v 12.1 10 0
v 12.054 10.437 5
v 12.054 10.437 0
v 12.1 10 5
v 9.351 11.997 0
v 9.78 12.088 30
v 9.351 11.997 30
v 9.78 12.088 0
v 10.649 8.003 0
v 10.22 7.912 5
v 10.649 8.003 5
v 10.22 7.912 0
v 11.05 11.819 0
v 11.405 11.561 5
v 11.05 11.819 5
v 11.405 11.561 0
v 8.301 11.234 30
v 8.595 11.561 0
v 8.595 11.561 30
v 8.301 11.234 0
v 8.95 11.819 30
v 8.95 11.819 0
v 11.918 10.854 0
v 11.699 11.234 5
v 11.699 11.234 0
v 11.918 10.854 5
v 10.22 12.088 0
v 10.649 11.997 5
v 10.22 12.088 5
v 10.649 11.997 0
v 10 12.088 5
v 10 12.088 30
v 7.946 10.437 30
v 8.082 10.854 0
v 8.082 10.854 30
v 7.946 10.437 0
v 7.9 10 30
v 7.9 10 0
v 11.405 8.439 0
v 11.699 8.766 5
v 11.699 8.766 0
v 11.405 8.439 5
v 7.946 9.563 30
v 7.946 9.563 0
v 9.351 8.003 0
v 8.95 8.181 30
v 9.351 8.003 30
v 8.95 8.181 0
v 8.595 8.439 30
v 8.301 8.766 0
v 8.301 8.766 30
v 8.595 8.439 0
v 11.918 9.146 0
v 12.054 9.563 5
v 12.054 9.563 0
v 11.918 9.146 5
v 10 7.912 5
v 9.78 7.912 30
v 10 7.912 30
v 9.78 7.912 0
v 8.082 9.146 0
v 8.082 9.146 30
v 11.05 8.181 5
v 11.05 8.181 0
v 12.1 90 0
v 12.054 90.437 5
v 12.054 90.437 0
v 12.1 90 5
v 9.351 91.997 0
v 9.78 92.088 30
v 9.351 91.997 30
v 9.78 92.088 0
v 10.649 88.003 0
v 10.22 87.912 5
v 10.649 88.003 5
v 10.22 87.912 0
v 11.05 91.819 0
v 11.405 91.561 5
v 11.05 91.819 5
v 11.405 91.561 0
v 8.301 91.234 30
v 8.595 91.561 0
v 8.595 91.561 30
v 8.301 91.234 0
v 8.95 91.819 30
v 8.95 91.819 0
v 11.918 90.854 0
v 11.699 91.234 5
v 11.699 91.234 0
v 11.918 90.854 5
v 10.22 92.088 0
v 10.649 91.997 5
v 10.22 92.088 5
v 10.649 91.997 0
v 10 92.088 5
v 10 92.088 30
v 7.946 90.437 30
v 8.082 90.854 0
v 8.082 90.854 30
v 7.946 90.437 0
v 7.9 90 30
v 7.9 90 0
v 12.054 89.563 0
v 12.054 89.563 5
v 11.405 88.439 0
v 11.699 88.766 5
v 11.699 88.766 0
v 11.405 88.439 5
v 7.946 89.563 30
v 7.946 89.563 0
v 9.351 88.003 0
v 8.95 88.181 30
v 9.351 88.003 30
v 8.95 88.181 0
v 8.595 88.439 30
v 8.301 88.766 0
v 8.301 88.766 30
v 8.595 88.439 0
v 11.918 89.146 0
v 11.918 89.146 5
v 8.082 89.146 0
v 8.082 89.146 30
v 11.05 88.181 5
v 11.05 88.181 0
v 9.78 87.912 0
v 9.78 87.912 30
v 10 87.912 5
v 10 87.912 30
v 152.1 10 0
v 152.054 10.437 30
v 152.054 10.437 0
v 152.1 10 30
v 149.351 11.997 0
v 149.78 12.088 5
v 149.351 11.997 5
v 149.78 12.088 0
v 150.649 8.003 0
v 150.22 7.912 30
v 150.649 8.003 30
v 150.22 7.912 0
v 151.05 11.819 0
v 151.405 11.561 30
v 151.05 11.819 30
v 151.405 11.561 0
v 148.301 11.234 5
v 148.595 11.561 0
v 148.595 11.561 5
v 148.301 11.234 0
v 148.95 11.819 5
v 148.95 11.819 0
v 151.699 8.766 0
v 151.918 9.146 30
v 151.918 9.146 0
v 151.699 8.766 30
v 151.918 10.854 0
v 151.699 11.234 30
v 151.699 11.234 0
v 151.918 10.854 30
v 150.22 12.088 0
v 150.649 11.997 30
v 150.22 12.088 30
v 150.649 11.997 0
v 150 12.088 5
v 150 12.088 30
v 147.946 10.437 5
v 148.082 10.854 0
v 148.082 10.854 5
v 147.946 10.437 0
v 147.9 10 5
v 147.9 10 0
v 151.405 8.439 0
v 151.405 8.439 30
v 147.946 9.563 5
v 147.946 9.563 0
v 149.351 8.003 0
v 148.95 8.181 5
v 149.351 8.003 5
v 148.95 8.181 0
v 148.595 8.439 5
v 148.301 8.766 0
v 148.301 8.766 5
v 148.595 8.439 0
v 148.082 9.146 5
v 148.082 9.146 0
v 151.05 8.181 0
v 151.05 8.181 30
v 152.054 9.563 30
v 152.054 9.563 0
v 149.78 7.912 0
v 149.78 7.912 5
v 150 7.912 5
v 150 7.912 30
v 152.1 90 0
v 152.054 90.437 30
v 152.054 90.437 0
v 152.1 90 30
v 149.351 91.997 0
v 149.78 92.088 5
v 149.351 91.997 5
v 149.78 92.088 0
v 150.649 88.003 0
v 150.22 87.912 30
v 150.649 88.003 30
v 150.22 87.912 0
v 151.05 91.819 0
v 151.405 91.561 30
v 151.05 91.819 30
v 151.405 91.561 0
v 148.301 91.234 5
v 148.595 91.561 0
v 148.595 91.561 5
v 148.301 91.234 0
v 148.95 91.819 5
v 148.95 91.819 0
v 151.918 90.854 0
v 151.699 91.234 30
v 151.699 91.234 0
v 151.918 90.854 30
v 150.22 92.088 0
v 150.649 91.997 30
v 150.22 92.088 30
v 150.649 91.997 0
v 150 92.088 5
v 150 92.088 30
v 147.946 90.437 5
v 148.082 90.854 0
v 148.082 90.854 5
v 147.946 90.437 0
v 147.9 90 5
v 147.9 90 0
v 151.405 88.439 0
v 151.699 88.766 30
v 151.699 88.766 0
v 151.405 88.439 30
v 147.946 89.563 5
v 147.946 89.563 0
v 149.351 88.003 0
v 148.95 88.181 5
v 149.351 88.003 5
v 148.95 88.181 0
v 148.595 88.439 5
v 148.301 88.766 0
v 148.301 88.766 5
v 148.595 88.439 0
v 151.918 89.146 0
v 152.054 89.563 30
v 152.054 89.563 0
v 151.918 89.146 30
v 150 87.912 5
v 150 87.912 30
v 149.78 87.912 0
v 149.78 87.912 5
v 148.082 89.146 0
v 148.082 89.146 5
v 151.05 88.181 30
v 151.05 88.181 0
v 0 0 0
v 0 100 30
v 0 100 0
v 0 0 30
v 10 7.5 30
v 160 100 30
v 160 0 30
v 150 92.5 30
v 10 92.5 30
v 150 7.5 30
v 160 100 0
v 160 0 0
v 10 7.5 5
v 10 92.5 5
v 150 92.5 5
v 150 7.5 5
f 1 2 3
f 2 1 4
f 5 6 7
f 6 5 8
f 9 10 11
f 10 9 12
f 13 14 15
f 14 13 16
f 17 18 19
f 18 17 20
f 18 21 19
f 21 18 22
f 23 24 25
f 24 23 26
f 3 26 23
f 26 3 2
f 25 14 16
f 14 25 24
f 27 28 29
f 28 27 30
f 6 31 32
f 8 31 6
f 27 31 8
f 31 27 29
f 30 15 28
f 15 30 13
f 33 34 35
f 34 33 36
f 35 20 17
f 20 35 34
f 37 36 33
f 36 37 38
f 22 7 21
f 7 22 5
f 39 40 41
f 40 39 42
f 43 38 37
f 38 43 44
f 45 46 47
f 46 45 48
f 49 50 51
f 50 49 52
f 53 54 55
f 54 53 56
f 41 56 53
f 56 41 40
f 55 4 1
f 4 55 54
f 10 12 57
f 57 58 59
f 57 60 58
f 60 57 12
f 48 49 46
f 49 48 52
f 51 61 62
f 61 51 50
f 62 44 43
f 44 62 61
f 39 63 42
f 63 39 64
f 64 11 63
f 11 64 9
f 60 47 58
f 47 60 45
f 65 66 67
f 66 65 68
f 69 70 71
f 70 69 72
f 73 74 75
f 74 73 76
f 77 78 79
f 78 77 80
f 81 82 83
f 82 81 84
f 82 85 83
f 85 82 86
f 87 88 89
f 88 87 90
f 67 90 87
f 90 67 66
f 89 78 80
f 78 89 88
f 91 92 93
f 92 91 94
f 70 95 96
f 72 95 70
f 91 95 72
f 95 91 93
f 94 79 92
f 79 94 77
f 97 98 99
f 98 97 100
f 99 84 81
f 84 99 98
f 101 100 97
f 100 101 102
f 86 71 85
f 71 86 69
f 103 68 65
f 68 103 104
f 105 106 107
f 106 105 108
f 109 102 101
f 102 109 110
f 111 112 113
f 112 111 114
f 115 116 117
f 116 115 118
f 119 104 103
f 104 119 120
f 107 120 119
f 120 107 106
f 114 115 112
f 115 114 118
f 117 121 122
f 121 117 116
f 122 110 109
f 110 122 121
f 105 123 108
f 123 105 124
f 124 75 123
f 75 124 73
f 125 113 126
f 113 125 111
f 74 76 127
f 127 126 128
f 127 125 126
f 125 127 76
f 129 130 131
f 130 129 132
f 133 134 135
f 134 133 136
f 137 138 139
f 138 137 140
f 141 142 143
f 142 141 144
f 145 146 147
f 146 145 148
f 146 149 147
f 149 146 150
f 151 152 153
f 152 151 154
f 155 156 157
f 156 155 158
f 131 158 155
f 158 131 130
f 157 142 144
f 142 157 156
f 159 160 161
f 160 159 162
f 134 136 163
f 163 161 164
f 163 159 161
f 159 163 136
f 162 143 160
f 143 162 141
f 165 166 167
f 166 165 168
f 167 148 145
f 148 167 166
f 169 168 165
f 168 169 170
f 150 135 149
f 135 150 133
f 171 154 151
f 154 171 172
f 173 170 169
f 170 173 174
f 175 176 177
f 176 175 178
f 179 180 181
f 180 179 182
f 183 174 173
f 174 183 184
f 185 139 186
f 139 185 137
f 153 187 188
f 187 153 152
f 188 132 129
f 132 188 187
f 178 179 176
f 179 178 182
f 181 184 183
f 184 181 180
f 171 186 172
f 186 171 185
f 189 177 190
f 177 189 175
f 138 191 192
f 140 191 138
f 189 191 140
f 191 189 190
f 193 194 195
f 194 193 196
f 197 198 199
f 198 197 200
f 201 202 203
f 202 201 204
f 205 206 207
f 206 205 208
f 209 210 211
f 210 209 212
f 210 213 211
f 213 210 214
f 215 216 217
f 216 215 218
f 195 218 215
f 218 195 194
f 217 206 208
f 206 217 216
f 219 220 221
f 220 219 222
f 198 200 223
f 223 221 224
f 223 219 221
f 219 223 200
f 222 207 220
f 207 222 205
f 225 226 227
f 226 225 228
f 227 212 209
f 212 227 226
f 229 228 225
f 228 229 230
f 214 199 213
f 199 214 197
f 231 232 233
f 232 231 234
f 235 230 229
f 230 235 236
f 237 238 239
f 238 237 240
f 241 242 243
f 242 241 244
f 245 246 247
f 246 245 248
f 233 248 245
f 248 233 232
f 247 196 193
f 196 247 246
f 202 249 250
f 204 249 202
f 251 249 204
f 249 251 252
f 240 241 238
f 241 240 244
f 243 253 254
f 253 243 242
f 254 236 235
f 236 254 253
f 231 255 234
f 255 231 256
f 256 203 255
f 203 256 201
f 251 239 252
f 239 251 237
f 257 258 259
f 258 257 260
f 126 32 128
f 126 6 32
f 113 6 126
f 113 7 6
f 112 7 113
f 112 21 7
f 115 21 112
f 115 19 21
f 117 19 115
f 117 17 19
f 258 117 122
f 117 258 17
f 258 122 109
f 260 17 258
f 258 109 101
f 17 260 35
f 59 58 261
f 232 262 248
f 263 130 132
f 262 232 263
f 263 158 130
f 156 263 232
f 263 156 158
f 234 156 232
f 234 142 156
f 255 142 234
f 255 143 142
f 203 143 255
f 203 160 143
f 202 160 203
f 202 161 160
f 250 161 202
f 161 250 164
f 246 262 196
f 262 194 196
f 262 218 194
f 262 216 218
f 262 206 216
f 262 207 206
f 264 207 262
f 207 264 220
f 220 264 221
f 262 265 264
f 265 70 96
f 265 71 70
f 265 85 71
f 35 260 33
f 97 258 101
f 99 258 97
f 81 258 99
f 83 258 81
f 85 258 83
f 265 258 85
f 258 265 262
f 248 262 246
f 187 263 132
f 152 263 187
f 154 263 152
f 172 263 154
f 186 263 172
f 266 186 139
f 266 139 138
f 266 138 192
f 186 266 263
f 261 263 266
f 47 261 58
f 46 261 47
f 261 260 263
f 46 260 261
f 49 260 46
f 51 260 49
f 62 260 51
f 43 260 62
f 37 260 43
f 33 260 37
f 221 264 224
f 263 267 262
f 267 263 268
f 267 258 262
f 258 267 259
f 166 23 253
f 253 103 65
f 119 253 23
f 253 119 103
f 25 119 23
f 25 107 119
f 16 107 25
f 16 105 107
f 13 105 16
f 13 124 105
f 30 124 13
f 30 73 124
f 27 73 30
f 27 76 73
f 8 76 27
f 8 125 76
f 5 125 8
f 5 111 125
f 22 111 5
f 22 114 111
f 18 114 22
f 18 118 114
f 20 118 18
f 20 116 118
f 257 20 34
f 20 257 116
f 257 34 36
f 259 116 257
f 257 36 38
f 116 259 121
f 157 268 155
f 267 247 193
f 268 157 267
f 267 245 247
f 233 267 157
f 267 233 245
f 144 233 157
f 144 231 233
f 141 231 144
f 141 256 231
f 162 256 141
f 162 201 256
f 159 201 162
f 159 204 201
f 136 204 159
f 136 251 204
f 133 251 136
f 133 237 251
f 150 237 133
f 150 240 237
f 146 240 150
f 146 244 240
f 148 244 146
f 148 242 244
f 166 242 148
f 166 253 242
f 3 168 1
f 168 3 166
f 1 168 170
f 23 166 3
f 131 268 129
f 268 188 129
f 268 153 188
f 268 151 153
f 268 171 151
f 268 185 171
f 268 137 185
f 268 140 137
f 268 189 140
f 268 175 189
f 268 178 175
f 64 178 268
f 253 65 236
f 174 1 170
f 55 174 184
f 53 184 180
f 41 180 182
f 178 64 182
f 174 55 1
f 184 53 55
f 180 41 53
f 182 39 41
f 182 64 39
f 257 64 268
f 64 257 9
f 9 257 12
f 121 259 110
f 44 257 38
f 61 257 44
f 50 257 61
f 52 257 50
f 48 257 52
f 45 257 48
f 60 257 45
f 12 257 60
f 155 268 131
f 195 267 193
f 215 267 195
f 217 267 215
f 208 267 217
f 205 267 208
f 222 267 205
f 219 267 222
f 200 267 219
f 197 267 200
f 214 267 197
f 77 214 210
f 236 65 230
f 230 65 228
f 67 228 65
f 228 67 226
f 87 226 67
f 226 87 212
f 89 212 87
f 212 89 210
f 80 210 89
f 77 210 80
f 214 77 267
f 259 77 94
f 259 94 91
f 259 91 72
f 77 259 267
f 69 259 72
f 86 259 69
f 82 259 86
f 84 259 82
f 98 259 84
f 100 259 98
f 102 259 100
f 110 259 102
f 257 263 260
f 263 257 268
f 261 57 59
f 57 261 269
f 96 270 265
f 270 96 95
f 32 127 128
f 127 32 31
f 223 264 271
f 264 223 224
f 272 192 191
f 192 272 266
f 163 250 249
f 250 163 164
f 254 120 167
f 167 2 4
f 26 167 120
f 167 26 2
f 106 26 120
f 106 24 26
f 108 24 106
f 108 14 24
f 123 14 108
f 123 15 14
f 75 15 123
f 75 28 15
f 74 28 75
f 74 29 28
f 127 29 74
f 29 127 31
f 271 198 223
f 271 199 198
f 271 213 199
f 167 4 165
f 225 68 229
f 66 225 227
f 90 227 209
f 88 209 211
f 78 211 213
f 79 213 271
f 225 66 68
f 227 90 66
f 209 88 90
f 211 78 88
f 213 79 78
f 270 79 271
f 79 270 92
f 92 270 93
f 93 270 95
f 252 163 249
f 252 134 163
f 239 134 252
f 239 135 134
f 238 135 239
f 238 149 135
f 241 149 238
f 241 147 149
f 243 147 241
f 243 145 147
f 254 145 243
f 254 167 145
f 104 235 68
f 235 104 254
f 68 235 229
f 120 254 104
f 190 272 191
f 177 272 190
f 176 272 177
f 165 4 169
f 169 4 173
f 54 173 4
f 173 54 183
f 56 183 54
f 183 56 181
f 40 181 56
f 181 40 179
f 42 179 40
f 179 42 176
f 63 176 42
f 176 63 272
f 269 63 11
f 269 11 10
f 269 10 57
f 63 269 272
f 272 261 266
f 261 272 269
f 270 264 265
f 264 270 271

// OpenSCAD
// ============================================================
// Part 6: Silicone Arm Cradle (optional)
// Remote Surgical Training Arm — Jaycar Servo Edition
// ============================================================
// Print: flat (open side up), no supports, ~1.5 hr, ~35g
// ============================================================
// U-shaped cradle that holds the silicone practice arm in place
// and prevents it from rolling during needle approach.
// Bolts to the table with M4 bolts alongside the base plate.
// ============================================================

// === DIMENSIONS ===
cradle_length   = 160;    // along arm axis (X)
cradle_width    = 100;    // across (Y)
cradle_height   = 30;     // Z height of walls

// Channel for silicone arm
channel_radius  = 42;     // ~80mm diameter arm → ~40mm radius + clearance
channel_depth   = 25;     // how deep the channel cuts from the top

// M4 bolt holes for table clamping
m4_hole_dia     = 4.2;
m4_inset_x      = 10;
m4_inset_y      = 10;

// End wall thickness
end_wall        = 10;

// === MODEL ===
module arm_cradle() {
    // Simple U-shaped channel: a block with a rectangular trough cut from the top
    // The silicone arm sits in the trough and the walls prevent rolling.
    
    channel_w = 85;  // width of channel (slightly wider than ~80mm arm)
    
    difference() {
        // Outer block
        cube([cradle_length, cradle_width, cradle_height]);
        
        // Rectangular channel cut from top
        // Centred in Y, inset from ends in X
        translate([
            end_wall,
            (cradle_width - channel_w) / 2,
            cradle_height - channel_depth
        ])
            cube([cradle_length - end_wall * 2, channel_w, channel_depth + 1]);
        
        // M4 corner holes (4×)
        for (x = [m4_inset_x, cradle_length - m4_inset_x])
            for (y = [m4_inset_y, cradle_width - m4_inset_y])
                translate([x, y, -1])
                    cylinder(h = cradle_height + 2, d = m4_hole_dia, $fn = 30);
    }
}

arm_cradle();
